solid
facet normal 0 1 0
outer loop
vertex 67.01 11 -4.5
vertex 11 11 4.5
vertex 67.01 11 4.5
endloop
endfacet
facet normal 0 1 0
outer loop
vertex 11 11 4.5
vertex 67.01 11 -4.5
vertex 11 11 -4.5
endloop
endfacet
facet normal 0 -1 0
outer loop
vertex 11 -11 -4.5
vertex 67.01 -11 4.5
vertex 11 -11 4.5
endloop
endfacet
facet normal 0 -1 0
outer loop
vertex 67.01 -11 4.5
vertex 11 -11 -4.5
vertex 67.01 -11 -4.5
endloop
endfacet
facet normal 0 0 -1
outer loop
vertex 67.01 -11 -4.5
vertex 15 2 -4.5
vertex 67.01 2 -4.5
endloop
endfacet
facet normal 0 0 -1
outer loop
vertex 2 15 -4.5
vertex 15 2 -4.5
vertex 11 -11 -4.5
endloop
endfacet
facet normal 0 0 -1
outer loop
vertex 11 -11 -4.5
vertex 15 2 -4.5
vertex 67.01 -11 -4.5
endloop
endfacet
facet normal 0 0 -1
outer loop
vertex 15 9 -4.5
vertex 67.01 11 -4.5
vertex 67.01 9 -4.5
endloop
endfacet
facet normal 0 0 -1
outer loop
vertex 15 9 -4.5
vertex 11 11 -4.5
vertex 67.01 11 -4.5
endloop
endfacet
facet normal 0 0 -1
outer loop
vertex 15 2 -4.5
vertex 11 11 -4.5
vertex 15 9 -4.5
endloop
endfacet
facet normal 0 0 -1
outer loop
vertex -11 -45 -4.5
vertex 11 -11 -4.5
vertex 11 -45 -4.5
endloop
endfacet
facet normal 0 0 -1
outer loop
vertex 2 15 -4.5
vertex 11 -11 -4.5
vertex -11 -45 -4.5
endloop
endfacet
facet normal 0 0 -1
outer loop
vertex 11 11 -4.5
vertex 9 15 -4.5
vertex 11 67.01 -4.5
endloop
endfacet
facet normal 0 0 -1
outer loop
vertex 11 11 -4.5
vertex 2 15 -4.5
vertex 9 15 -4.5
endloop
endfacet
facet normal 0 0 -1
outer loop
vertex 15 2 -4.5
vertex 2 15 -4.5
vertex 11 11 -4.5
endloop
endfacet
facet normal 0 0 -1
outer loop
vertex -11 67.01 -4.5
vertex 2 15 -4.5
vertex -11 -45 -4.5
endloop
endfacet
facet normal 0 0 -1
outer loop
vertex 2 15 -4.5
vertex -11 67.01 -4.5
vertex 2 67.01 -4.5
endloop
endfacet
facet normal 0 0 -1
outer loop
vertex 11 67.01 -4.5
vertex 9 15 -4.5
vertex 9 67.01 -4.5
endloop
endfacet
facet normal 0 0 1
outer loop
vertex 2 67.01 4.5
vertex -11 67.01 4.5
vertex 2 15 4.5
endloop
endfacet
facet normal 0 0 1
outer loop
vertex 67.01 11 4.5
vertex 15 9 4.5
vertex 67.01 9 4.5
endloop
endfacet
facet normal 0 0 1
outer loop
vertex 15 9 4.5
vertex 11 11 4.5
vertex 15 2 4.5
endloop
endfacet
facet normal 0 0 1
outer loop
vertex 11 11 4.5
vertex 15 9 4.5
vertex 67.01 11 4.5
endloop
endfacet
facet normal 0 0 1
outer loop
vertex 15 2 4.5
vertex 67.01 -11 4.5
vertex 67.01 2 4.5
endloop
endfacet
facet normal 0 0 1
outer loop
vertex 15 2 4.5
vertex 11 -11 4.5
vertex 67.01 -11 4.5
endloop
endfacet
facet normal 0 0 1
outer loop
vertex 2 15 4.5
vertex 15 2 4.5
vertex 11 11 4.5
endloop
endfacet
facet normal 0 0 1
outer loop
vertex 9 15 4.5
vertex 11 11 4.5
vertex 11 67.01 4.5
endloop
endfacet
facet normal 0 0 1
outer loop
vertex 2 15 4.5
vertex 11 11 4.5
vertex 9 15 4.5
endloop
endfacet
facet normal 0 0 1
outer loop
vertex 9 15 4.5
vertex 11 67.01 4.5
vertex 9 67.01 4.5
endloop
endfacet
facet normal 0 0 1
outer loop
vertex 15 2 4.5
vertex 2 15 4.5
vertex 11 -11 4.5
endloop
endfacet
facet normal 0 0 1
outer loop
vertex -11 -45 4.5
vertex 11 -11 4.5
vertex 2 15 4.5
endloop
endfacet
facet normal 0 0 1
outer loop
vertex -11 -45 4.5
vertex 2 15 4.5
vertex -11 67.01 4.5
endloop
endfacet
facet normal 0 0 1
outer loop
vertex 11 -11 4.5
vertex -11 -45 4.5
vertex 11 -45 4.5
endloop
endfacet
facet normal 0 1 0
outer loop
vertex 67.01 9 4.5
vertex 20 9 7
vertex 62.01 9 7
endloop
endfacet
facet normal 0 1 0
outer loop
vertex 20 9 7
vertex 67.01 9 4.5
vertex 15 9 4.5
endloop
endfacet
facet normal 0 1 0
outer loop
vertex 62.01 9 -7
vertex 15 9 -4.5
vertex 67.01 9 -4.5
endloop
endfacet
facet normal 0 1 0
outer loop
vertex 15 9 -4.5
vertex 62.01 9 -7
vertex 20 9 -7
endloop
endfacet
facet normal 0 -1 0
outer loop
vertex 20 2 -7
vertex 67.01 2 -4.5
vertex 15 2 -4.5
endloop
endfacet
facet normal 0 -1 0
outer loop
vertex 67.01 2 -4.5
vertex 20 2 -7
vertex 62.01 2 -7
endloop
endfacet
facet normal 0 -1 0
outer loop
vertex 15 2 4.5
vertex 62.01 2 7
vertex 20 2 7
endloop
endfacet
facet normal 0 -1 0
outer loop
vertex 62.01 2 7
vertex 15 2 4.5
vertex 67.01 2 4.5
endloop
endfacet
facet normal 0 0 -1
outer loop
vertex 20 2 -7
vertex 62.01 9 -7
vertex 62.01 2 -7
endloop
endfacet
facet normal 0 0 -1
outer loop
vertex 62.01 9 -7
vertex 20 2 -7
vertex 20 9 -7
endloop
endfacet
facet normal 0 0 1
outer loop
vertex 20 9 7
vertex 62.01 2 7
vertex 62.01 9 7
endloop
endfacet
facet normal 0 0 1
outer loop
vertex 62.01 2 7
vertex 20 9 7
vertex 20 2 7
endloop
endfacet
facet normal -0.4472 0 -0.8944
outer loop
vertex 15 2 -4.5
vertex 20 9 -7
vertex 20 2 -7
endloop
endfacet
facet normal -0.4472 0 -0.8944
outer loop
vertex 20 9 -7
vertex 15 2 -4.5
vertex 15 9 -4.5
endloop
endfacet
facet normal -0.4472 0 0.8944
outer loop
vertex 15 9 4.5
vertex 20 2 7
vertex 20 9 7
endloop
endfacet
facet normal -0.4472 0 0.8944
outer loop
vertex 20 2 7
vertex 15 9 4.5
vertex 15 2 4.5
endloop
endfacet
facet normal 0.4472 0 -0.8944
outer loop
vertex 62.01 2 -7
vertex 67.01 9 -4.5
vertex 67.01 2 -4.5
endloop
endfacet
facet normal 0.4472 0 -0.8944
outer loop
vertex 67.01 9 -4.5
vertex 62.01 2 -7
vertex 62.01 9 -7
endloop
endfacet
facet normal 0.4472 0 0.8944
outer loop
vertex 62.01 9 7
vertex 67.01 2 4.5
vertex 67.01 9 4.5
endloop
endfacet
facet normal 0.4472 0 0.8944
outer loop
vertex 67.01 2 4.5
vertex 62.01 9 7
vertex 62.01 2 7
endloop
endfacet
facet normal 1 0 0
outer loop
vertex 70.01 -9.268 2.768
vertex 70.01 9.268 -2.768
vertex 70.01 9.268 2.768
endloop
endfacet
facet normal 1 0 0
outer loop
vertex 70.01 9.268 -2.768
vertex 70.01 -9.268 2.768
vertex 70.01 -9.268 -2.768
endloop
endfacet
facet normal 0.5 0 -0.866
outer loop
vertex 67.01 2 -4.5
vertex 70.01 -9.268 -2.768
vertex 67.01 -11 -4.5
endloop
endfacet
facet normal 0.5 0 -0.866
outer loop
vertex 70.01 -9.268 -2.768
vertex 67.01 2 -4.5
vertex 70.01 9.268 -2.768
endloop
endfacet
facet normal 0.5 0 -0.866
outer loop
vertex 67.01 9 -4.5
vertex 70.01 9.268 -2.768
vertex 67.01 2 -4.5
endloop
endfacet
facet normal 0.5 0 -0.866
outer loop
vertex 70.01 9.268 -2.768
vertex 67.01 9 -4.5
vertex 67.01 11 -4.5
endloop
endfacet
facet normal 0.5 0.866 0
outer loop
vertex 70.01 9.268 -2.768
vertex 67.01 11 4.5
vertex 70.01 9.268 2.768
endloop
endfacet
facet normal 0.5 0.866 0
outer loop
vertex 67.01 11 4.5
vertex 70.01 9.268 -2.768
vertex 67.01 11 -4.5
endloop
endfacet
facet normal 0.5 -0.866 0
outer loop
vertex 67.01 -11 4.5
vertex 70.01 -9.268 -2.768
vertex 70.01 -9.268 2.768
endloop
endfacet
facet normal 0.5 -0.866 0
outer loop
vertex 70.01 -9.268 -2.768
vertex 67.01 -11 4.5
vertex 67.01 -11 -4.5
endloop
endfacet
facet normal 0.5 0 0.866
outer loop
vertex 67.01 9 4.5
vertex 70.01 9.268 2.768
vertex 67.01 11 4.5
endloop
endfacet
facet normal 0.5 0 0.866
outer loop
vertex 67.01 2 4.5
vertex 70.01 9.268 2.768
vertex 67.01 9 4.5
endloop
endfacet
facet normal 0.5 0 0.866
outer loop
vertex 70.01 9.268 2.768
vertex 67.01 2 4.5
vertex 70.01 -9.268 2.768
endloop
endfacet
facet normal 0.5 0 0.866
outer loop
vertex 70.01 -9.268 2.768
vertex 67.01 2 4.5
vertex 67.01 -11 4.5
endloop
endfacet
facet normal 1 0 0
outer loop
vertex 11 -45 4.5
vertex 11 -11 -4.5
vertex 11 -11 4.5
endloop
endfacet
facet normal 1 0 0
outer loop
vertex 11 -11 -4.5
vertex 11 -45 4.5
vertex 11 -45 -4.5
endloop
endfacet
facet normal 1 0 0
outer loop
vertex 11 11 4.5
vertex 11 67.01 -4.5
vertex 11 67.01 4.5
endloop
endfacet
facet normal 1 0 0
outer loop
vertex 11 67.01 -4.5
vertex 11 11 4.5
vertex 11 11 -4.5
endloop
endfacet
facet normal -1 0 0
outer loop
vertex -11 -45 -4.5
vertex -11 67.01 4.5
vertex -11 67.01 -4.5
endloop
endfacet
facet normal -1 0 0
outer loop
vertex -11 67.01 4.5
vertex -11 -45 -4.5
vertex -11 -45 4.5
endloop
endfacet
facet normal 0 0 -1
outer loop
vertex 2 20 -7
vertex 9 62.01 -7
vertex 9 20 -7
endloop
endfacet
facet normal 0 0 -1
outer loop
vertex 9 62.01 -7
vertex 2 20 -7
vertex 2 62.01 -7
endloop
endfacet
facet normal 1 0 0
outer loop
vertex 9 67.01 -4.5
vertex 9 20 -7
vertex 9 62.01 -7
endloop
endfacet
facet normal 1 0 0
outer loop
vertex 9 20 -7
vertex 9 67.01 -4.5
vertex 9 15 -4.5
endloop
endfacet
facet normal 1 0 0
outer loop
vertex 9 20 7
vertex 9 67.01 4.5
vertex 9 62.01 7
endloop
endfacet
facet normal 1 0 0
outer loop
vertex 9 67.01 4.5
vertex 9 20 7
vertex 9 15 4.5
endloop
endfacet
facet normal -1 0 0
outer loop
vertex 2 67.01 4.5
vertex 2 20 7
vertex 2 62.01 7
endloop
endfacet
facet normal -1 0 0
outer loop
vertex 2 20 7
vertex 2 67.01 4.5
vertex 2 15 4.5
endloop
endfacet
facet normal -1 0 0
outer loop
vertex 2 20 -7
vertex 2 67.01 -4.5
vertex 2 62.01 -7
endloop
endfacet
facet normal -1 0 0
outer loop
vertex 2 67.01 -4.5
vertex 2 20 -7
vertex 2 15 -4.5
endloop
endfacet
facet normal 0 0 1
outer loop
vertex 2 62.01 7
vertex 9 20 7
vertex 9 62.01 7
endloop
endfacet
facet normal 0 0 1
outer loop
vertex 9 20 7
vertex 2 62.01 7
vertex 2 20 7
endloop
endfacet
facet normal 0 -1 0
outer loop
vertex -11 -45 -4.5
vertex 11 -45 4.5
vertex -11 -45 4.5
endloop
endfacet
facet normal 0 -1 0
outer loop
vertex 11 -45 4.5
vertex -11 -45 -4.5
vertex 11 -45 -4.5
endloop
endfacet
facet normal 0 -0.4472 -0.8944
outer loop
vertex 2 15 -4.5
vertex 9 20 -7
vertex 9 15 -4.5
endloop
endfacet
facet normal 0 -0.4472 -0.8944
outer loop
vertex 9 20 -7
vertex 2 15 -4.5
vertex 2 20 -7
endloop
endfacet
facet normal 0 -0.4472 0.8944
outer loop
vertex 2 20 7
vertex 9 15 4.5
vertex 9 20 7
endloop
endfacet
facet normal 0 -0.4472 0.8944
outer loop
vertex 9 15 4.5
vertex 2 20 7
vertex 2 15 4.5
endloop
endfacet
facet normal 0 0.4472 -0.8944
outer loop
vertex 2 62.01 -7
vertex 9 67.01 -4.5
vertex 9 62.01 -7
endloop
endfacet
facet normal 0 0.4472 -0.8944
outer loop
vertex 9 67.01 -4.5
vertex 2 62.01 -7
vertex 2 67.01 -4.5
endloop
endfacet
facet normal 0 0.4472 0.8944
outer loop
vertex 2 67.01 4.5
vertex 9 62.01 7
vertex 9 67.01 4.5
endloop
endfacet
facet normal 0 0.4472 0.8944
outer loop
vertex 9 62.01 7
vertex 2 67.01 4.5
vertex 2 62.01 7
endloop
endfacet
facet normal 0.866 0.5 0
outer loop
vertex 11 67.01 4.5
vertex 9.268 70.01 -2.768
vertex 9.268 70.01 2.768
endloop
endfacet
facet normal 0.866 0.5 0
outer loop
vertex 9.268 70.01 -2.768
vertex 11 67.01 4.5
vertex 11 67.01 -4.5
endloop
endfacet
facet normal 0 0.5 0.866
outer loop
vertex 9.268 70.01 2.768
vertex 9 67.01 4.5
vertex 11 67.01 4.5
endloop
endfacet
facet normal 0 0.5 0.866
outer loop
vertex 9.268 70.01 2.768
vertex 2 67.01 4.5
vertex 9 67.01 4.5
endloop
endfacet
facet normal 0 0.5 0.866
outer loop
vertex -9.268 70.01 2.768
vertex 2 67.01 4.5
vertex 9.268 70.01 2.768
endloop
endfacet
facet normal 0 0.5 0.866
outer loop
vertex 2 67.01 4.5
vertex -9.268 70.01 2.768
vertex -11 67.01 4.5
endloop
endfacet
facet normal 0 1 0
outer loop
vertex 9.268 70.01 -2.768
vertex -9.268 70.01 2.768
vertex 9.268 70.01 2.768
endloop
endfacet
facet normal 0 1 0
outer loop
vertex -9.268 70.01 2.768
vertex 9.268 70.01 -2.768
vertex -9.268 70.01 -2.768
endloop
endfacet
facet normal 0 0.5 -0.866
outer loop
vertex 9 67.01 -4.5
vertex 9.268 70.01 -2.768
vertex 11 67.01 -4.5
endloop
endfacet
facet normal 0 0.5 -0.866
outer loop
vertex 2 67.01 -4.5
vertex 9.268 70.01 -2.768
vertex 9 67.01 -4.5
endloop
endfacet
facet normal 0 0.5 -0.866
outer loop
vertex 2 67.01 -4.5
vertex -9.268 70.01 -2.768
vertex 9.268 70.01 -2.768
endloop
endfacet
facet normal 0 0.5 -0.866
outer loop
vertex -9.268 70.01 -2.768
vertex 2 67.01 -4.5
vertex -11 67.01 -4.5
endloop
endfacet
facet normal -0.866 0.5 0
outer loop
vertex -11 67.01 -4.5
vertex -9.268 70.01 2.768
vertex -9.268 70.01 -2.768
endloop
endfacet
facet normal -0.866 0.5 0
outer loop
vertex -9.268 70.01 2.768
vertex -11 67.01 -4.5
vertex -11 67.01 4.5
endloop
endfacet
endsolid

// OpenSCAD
//// ============================================================
// FVE L-Bracket — Rohová spojka pro hliníkový H-profil
// ============================================================
// Pravoúhlý insert: jedno rameno do drážky profilu A (osa X),
// druhé rameno (90°) do drážky profilu B (osa Y).
// Pro 3D tisk (FDM), materiál PETG nebo ABS.
//
// Průřez insertu = kříž (vyplňuje celý H-profil):
//
//       ┌───┐          ← 2mm hrdlo, šířka 9mm
//       │   │
//   ┌───┘   └───┐
//   │   14mm    │     ← 7mm příruba (dolní dutina)
//   └───┐   ┌───┘
//       │   │          ← 13mm střed, šířka 9mm
//       │   │
//       │   │
//       └───┘          
//
// Rozměry jsou INSERTU (vůle už zahrnuta uživatelem).
// ============================================================

// === ROZMĚRY PRŮŘEZU (KŘÍŽ) ===
stem_w    = 9;     // šířka úzkého středu (hrdla + střed)
flange_w  = 14;    // šířka příruby (v dutině)
flange_h  = 7;     // výška příruby
narrow_h  = 2;     // výška úzkého hrdla (nahoře + dole)
center_h  = 13;     // výška středové stěny
profile_h = 22;    // celková výška: 2+7+4+7+2 = 22
arm_y_ext = 45;

// === PARAMETRY DÍLU ===
arm_length = 70;   // délka každého ramena [mm]
transition = 15;   // přechodová zóna u rohu bez přírub [mm]

// === ZKOSENÍ KONCŮ ===
taper_len   = 3;                        // délka zkosení [mm]
taper_angle = 30;                       // úhel zkosení [°]
taper_inset = taper_len * tan(taper_angle);  // zúžení na stranu [~2.89 mm]

// === NÁBĚH PŘÍRUBY ===
flange_taper_len = 5;   // délka náběhu příruby [mm]

// === ODVOZENÉ POZICE (Z-osa = svisle) ===
// Průřez vycentrovaný na Z=0:
//   Z = -11 .. -9   → dolní hrdlo (stem_w)
//   Z =  -9 .. -2   → dolní příruba (flange_w)
//   Z =  -2 .. +2   → střed (stem_w)
//   Z =  +2 .. +9   → horní příruba (flange_w)
//   Z =  +9 .. +11  → horní hrdlo (stem_w)

flange_lo_z = -profile_h/2 + narrow_h;           // -9
flange_hi_z = profile_h/2 - narrow_h - flange_h; // +2

// ============================================================
// RAMENO PODÉL OSY X
// ============================================================
// Průřez v rovině YZ:
//   Y = šířka (stem_w nebo flange_w), Z = výška (profile_h)
//   Příruby rozšiřují v Y

module arm_x(x_start, x_end, with_flanges = true, flange_offset = 0, flange_end_offset = 0) {
    len = x_end - x_start;

    // Dřík (stem) — plná výška, úzký
    translate([x_start, -stem_w/2, -profile_h/2])
        cube([len, stem_w, profile_h]);

    if (with_flanges) {
        translate([x_start + flange_offset, -flange_w/2, flange_hi_z])
            cube([len - flange_offset - flange_end_offset, flange_w, flange_h]);
    }
}

// ============================================================
// RAMENO PODÉL OSY Y
// ============================================================
// Průřez v rovině XZ:
//   X = šířka (stem_w nebo flange_w), Z = výška (profile_h)
//   Příruby rozšiřují v X
//   STEJNÁ Z-orientace jako rameno X → příruby ve stejné výšce

module arm_y(y_start, y_end, with_flanges = true, flange_offset = 0, flange_end_offset = 0) {
    len = y_end - y_start;

    // Dřík (stem) — plná výška, úzký
    translate([-stem_w/2, y_start, -profile_h/2])
        cube([stem_w, len, profile_h]);

    if (with_flanges) {
        translate([-flange_w/2, y_start + flange_offset, flange_hi_z])
            cube([flange_w, len - flange_offset - flange_end_offset, flange_h]);
    }
}

// ============================================================
// ZKOSENÍ KONCE RAMENA (hull mezi plným a zúženým průřezem)
// ============================================================

module taper_x() {
    hull() {
        // Plný průřez na začátku zkosení
        translate([arm_length - taper_len, -stem_w/2, -profile_h/2])
            cube([0.01, stem_w, profile_h]);
        // Zúžený průřez na špičce
        translate([arm_length,
                   -stem_w/2 + taper_inset,
                   -profile_h/2 + taper_inset])
            cube([0.01,
                  stem_w - 2*taper_inset,
                  profile_h - 2*taper_inset]);
    }
}

module taper_y() {
    hull() {
        // Plný průřez na začátku zkosení
        translate([-stem_w/2, arm_length - taper_len, -profile_h/2])
            cube([stem_w, 0.01, profile_h]);
        // Zúžený průřez na špičce
        translate([-stem_w/2 + taper_inset,
                   arm_length,
                   -profile_h/2 + taper_inset])
            cube([stem_w - 2*taper_inset,
                  0.01,
                  profile_h - 2*taper_inset]);
    }
}

// ============================================================
// NÁBĚH PŘÍRUBY (hull ze stem_w na flange_w)
// ============================================================

module flange_taper_x(x_pos) {
    hull() {
        // Začátek: šířka stem_w (na úrovni dříku)
        translate([x_pos, -stem_w/2, flange_hi_z])
            cube([0.01, stem_w, flange_h]);
        // Konec: plná šířka flange_w
        translate([x_pos + flange_taper_len, -flange_w/2, flange_hi_z])
            cube([0.01, flange_w, flange_h]);
    }
}

module flange_taper_y(y_pos) {
    hull() {
        // Začátek: šířka stem_w (na úrovni dříku)
        translate([-stem_w/2, y_pos, flange_hi_z])
            cube([stem_w, 0.01, flange_h]);
        // Konec: plná šířka flange_w
        translate([-flange_w/2, y_pos + flange_taper_len, flange_hi_z])
            cube([flange_w, 0.01, flange_h]);
    }
}

// Koncový náběh příruby (z flange_w zpět na stem_w)

module flange_taper_x_end(x_pos) {
    hull() {
        // Začátek: plná šířka flange_w
        translate([x_pos, -flange_w/2, flange_hi_z])
            cube([0.01, flange_w, flange_h]);
        // Konec: zúženo na stem_w
        translate([x_pos + flange_taper_len, -stem_w/2, flange_hi_z])
            cube([0.01, stem_w, flange_h]);
    }
}

module flange_taper_y_end(y_pos) {
    hull() {
        // Začátek: plná šířka flange_w
        translate([-flange_w/2, y_pos, flange_hi_z])
            cube([flange_w, 0.01, flange_h]);
        // Konec: zúženo na stem_w
        translate([-stem_w/2, y_pos + flange_taper_len, flange_hi_z])
            cube([stem_w, 0.01, flange_h]);
    }
}

// ============================================================
// L-BRACKET SESTAVA
// ============================================================
module l_bracket() {

    // --- Rameno A podél osy X (otočeno 90° kolem X) ---
    // Průřez pootočen: příruby rozšiřují v Z místo Y
    rotate([270, 0, 0]) {
        // Přechodová zóna (jen dřík, bez přírub)
        color("SteelBlue")
            arm_x(0, transition, with_flanges = false);

        // Hlavní část (plný kříž, zkrácená o taper)
        color("SteelBlue")
            arm_x(transition, arm_length - taper_len,
                  with_flanges = true,
                  flange_offset = flange_taper_len,
                  flange_end_offset = flange_taper_len);

        // Náběh příruby — začátek (rampa stem_w → flange_w)
        color("SteelBlue")
            flange_taper_x(transition);

        // Náběh příruby — konec (rampa flange_w → stem_w)
        color("SteelBlue")
            flange_taper_x_end(arm_length - taper_len - flange_taper_len);

        // Zkosení konce
        color("Lime")
            taper_x();
    }


    // --- Rameno B podél osy Y ---
    // Přechodová zóna (jen dřík, bez přírub)
    rotate([0, 90, 0]) {
        color("Coral")
        arm_y(-arm_y_ext, arm_y_ext+transition, with_flanges = false);

    // Hlavní část (plný kříž, zkrácená o taper)
        color("Coral")
        arm_y(transition, arm_length - taper_len,
              with_flanges = true,
              flange_offset = flange_taper_len,
              flange_end_offset = flange_taper_len);

        // Náběh příruby — začátek (rampa stem_w → flange_w)
        color("Coral")
        flange_taper_y(transition);

        // Náběh příruby — konec (rampa flange_w → stem_w)
        color("Coral")
        flange_taper_y_end(arm_length - taper_len - flange_taper_len);

        // Zkosení konce
        color("Lime")
        taper_y();
    }
    
}

// === RENDER ===
l_bracket();

// === INFO ===
echo(str("=== FVE L-Bracket ==="));
echo(str("Délka ramena: ", arm_length, " mm"));
echo(str("Průřez kříž: stem ", stem_w, "×", profile_h,
         ", příruby ", flange_w, "×", flange_h, " mm"));
echo(str("Přechodová zóna: ", transition, " mm"));
